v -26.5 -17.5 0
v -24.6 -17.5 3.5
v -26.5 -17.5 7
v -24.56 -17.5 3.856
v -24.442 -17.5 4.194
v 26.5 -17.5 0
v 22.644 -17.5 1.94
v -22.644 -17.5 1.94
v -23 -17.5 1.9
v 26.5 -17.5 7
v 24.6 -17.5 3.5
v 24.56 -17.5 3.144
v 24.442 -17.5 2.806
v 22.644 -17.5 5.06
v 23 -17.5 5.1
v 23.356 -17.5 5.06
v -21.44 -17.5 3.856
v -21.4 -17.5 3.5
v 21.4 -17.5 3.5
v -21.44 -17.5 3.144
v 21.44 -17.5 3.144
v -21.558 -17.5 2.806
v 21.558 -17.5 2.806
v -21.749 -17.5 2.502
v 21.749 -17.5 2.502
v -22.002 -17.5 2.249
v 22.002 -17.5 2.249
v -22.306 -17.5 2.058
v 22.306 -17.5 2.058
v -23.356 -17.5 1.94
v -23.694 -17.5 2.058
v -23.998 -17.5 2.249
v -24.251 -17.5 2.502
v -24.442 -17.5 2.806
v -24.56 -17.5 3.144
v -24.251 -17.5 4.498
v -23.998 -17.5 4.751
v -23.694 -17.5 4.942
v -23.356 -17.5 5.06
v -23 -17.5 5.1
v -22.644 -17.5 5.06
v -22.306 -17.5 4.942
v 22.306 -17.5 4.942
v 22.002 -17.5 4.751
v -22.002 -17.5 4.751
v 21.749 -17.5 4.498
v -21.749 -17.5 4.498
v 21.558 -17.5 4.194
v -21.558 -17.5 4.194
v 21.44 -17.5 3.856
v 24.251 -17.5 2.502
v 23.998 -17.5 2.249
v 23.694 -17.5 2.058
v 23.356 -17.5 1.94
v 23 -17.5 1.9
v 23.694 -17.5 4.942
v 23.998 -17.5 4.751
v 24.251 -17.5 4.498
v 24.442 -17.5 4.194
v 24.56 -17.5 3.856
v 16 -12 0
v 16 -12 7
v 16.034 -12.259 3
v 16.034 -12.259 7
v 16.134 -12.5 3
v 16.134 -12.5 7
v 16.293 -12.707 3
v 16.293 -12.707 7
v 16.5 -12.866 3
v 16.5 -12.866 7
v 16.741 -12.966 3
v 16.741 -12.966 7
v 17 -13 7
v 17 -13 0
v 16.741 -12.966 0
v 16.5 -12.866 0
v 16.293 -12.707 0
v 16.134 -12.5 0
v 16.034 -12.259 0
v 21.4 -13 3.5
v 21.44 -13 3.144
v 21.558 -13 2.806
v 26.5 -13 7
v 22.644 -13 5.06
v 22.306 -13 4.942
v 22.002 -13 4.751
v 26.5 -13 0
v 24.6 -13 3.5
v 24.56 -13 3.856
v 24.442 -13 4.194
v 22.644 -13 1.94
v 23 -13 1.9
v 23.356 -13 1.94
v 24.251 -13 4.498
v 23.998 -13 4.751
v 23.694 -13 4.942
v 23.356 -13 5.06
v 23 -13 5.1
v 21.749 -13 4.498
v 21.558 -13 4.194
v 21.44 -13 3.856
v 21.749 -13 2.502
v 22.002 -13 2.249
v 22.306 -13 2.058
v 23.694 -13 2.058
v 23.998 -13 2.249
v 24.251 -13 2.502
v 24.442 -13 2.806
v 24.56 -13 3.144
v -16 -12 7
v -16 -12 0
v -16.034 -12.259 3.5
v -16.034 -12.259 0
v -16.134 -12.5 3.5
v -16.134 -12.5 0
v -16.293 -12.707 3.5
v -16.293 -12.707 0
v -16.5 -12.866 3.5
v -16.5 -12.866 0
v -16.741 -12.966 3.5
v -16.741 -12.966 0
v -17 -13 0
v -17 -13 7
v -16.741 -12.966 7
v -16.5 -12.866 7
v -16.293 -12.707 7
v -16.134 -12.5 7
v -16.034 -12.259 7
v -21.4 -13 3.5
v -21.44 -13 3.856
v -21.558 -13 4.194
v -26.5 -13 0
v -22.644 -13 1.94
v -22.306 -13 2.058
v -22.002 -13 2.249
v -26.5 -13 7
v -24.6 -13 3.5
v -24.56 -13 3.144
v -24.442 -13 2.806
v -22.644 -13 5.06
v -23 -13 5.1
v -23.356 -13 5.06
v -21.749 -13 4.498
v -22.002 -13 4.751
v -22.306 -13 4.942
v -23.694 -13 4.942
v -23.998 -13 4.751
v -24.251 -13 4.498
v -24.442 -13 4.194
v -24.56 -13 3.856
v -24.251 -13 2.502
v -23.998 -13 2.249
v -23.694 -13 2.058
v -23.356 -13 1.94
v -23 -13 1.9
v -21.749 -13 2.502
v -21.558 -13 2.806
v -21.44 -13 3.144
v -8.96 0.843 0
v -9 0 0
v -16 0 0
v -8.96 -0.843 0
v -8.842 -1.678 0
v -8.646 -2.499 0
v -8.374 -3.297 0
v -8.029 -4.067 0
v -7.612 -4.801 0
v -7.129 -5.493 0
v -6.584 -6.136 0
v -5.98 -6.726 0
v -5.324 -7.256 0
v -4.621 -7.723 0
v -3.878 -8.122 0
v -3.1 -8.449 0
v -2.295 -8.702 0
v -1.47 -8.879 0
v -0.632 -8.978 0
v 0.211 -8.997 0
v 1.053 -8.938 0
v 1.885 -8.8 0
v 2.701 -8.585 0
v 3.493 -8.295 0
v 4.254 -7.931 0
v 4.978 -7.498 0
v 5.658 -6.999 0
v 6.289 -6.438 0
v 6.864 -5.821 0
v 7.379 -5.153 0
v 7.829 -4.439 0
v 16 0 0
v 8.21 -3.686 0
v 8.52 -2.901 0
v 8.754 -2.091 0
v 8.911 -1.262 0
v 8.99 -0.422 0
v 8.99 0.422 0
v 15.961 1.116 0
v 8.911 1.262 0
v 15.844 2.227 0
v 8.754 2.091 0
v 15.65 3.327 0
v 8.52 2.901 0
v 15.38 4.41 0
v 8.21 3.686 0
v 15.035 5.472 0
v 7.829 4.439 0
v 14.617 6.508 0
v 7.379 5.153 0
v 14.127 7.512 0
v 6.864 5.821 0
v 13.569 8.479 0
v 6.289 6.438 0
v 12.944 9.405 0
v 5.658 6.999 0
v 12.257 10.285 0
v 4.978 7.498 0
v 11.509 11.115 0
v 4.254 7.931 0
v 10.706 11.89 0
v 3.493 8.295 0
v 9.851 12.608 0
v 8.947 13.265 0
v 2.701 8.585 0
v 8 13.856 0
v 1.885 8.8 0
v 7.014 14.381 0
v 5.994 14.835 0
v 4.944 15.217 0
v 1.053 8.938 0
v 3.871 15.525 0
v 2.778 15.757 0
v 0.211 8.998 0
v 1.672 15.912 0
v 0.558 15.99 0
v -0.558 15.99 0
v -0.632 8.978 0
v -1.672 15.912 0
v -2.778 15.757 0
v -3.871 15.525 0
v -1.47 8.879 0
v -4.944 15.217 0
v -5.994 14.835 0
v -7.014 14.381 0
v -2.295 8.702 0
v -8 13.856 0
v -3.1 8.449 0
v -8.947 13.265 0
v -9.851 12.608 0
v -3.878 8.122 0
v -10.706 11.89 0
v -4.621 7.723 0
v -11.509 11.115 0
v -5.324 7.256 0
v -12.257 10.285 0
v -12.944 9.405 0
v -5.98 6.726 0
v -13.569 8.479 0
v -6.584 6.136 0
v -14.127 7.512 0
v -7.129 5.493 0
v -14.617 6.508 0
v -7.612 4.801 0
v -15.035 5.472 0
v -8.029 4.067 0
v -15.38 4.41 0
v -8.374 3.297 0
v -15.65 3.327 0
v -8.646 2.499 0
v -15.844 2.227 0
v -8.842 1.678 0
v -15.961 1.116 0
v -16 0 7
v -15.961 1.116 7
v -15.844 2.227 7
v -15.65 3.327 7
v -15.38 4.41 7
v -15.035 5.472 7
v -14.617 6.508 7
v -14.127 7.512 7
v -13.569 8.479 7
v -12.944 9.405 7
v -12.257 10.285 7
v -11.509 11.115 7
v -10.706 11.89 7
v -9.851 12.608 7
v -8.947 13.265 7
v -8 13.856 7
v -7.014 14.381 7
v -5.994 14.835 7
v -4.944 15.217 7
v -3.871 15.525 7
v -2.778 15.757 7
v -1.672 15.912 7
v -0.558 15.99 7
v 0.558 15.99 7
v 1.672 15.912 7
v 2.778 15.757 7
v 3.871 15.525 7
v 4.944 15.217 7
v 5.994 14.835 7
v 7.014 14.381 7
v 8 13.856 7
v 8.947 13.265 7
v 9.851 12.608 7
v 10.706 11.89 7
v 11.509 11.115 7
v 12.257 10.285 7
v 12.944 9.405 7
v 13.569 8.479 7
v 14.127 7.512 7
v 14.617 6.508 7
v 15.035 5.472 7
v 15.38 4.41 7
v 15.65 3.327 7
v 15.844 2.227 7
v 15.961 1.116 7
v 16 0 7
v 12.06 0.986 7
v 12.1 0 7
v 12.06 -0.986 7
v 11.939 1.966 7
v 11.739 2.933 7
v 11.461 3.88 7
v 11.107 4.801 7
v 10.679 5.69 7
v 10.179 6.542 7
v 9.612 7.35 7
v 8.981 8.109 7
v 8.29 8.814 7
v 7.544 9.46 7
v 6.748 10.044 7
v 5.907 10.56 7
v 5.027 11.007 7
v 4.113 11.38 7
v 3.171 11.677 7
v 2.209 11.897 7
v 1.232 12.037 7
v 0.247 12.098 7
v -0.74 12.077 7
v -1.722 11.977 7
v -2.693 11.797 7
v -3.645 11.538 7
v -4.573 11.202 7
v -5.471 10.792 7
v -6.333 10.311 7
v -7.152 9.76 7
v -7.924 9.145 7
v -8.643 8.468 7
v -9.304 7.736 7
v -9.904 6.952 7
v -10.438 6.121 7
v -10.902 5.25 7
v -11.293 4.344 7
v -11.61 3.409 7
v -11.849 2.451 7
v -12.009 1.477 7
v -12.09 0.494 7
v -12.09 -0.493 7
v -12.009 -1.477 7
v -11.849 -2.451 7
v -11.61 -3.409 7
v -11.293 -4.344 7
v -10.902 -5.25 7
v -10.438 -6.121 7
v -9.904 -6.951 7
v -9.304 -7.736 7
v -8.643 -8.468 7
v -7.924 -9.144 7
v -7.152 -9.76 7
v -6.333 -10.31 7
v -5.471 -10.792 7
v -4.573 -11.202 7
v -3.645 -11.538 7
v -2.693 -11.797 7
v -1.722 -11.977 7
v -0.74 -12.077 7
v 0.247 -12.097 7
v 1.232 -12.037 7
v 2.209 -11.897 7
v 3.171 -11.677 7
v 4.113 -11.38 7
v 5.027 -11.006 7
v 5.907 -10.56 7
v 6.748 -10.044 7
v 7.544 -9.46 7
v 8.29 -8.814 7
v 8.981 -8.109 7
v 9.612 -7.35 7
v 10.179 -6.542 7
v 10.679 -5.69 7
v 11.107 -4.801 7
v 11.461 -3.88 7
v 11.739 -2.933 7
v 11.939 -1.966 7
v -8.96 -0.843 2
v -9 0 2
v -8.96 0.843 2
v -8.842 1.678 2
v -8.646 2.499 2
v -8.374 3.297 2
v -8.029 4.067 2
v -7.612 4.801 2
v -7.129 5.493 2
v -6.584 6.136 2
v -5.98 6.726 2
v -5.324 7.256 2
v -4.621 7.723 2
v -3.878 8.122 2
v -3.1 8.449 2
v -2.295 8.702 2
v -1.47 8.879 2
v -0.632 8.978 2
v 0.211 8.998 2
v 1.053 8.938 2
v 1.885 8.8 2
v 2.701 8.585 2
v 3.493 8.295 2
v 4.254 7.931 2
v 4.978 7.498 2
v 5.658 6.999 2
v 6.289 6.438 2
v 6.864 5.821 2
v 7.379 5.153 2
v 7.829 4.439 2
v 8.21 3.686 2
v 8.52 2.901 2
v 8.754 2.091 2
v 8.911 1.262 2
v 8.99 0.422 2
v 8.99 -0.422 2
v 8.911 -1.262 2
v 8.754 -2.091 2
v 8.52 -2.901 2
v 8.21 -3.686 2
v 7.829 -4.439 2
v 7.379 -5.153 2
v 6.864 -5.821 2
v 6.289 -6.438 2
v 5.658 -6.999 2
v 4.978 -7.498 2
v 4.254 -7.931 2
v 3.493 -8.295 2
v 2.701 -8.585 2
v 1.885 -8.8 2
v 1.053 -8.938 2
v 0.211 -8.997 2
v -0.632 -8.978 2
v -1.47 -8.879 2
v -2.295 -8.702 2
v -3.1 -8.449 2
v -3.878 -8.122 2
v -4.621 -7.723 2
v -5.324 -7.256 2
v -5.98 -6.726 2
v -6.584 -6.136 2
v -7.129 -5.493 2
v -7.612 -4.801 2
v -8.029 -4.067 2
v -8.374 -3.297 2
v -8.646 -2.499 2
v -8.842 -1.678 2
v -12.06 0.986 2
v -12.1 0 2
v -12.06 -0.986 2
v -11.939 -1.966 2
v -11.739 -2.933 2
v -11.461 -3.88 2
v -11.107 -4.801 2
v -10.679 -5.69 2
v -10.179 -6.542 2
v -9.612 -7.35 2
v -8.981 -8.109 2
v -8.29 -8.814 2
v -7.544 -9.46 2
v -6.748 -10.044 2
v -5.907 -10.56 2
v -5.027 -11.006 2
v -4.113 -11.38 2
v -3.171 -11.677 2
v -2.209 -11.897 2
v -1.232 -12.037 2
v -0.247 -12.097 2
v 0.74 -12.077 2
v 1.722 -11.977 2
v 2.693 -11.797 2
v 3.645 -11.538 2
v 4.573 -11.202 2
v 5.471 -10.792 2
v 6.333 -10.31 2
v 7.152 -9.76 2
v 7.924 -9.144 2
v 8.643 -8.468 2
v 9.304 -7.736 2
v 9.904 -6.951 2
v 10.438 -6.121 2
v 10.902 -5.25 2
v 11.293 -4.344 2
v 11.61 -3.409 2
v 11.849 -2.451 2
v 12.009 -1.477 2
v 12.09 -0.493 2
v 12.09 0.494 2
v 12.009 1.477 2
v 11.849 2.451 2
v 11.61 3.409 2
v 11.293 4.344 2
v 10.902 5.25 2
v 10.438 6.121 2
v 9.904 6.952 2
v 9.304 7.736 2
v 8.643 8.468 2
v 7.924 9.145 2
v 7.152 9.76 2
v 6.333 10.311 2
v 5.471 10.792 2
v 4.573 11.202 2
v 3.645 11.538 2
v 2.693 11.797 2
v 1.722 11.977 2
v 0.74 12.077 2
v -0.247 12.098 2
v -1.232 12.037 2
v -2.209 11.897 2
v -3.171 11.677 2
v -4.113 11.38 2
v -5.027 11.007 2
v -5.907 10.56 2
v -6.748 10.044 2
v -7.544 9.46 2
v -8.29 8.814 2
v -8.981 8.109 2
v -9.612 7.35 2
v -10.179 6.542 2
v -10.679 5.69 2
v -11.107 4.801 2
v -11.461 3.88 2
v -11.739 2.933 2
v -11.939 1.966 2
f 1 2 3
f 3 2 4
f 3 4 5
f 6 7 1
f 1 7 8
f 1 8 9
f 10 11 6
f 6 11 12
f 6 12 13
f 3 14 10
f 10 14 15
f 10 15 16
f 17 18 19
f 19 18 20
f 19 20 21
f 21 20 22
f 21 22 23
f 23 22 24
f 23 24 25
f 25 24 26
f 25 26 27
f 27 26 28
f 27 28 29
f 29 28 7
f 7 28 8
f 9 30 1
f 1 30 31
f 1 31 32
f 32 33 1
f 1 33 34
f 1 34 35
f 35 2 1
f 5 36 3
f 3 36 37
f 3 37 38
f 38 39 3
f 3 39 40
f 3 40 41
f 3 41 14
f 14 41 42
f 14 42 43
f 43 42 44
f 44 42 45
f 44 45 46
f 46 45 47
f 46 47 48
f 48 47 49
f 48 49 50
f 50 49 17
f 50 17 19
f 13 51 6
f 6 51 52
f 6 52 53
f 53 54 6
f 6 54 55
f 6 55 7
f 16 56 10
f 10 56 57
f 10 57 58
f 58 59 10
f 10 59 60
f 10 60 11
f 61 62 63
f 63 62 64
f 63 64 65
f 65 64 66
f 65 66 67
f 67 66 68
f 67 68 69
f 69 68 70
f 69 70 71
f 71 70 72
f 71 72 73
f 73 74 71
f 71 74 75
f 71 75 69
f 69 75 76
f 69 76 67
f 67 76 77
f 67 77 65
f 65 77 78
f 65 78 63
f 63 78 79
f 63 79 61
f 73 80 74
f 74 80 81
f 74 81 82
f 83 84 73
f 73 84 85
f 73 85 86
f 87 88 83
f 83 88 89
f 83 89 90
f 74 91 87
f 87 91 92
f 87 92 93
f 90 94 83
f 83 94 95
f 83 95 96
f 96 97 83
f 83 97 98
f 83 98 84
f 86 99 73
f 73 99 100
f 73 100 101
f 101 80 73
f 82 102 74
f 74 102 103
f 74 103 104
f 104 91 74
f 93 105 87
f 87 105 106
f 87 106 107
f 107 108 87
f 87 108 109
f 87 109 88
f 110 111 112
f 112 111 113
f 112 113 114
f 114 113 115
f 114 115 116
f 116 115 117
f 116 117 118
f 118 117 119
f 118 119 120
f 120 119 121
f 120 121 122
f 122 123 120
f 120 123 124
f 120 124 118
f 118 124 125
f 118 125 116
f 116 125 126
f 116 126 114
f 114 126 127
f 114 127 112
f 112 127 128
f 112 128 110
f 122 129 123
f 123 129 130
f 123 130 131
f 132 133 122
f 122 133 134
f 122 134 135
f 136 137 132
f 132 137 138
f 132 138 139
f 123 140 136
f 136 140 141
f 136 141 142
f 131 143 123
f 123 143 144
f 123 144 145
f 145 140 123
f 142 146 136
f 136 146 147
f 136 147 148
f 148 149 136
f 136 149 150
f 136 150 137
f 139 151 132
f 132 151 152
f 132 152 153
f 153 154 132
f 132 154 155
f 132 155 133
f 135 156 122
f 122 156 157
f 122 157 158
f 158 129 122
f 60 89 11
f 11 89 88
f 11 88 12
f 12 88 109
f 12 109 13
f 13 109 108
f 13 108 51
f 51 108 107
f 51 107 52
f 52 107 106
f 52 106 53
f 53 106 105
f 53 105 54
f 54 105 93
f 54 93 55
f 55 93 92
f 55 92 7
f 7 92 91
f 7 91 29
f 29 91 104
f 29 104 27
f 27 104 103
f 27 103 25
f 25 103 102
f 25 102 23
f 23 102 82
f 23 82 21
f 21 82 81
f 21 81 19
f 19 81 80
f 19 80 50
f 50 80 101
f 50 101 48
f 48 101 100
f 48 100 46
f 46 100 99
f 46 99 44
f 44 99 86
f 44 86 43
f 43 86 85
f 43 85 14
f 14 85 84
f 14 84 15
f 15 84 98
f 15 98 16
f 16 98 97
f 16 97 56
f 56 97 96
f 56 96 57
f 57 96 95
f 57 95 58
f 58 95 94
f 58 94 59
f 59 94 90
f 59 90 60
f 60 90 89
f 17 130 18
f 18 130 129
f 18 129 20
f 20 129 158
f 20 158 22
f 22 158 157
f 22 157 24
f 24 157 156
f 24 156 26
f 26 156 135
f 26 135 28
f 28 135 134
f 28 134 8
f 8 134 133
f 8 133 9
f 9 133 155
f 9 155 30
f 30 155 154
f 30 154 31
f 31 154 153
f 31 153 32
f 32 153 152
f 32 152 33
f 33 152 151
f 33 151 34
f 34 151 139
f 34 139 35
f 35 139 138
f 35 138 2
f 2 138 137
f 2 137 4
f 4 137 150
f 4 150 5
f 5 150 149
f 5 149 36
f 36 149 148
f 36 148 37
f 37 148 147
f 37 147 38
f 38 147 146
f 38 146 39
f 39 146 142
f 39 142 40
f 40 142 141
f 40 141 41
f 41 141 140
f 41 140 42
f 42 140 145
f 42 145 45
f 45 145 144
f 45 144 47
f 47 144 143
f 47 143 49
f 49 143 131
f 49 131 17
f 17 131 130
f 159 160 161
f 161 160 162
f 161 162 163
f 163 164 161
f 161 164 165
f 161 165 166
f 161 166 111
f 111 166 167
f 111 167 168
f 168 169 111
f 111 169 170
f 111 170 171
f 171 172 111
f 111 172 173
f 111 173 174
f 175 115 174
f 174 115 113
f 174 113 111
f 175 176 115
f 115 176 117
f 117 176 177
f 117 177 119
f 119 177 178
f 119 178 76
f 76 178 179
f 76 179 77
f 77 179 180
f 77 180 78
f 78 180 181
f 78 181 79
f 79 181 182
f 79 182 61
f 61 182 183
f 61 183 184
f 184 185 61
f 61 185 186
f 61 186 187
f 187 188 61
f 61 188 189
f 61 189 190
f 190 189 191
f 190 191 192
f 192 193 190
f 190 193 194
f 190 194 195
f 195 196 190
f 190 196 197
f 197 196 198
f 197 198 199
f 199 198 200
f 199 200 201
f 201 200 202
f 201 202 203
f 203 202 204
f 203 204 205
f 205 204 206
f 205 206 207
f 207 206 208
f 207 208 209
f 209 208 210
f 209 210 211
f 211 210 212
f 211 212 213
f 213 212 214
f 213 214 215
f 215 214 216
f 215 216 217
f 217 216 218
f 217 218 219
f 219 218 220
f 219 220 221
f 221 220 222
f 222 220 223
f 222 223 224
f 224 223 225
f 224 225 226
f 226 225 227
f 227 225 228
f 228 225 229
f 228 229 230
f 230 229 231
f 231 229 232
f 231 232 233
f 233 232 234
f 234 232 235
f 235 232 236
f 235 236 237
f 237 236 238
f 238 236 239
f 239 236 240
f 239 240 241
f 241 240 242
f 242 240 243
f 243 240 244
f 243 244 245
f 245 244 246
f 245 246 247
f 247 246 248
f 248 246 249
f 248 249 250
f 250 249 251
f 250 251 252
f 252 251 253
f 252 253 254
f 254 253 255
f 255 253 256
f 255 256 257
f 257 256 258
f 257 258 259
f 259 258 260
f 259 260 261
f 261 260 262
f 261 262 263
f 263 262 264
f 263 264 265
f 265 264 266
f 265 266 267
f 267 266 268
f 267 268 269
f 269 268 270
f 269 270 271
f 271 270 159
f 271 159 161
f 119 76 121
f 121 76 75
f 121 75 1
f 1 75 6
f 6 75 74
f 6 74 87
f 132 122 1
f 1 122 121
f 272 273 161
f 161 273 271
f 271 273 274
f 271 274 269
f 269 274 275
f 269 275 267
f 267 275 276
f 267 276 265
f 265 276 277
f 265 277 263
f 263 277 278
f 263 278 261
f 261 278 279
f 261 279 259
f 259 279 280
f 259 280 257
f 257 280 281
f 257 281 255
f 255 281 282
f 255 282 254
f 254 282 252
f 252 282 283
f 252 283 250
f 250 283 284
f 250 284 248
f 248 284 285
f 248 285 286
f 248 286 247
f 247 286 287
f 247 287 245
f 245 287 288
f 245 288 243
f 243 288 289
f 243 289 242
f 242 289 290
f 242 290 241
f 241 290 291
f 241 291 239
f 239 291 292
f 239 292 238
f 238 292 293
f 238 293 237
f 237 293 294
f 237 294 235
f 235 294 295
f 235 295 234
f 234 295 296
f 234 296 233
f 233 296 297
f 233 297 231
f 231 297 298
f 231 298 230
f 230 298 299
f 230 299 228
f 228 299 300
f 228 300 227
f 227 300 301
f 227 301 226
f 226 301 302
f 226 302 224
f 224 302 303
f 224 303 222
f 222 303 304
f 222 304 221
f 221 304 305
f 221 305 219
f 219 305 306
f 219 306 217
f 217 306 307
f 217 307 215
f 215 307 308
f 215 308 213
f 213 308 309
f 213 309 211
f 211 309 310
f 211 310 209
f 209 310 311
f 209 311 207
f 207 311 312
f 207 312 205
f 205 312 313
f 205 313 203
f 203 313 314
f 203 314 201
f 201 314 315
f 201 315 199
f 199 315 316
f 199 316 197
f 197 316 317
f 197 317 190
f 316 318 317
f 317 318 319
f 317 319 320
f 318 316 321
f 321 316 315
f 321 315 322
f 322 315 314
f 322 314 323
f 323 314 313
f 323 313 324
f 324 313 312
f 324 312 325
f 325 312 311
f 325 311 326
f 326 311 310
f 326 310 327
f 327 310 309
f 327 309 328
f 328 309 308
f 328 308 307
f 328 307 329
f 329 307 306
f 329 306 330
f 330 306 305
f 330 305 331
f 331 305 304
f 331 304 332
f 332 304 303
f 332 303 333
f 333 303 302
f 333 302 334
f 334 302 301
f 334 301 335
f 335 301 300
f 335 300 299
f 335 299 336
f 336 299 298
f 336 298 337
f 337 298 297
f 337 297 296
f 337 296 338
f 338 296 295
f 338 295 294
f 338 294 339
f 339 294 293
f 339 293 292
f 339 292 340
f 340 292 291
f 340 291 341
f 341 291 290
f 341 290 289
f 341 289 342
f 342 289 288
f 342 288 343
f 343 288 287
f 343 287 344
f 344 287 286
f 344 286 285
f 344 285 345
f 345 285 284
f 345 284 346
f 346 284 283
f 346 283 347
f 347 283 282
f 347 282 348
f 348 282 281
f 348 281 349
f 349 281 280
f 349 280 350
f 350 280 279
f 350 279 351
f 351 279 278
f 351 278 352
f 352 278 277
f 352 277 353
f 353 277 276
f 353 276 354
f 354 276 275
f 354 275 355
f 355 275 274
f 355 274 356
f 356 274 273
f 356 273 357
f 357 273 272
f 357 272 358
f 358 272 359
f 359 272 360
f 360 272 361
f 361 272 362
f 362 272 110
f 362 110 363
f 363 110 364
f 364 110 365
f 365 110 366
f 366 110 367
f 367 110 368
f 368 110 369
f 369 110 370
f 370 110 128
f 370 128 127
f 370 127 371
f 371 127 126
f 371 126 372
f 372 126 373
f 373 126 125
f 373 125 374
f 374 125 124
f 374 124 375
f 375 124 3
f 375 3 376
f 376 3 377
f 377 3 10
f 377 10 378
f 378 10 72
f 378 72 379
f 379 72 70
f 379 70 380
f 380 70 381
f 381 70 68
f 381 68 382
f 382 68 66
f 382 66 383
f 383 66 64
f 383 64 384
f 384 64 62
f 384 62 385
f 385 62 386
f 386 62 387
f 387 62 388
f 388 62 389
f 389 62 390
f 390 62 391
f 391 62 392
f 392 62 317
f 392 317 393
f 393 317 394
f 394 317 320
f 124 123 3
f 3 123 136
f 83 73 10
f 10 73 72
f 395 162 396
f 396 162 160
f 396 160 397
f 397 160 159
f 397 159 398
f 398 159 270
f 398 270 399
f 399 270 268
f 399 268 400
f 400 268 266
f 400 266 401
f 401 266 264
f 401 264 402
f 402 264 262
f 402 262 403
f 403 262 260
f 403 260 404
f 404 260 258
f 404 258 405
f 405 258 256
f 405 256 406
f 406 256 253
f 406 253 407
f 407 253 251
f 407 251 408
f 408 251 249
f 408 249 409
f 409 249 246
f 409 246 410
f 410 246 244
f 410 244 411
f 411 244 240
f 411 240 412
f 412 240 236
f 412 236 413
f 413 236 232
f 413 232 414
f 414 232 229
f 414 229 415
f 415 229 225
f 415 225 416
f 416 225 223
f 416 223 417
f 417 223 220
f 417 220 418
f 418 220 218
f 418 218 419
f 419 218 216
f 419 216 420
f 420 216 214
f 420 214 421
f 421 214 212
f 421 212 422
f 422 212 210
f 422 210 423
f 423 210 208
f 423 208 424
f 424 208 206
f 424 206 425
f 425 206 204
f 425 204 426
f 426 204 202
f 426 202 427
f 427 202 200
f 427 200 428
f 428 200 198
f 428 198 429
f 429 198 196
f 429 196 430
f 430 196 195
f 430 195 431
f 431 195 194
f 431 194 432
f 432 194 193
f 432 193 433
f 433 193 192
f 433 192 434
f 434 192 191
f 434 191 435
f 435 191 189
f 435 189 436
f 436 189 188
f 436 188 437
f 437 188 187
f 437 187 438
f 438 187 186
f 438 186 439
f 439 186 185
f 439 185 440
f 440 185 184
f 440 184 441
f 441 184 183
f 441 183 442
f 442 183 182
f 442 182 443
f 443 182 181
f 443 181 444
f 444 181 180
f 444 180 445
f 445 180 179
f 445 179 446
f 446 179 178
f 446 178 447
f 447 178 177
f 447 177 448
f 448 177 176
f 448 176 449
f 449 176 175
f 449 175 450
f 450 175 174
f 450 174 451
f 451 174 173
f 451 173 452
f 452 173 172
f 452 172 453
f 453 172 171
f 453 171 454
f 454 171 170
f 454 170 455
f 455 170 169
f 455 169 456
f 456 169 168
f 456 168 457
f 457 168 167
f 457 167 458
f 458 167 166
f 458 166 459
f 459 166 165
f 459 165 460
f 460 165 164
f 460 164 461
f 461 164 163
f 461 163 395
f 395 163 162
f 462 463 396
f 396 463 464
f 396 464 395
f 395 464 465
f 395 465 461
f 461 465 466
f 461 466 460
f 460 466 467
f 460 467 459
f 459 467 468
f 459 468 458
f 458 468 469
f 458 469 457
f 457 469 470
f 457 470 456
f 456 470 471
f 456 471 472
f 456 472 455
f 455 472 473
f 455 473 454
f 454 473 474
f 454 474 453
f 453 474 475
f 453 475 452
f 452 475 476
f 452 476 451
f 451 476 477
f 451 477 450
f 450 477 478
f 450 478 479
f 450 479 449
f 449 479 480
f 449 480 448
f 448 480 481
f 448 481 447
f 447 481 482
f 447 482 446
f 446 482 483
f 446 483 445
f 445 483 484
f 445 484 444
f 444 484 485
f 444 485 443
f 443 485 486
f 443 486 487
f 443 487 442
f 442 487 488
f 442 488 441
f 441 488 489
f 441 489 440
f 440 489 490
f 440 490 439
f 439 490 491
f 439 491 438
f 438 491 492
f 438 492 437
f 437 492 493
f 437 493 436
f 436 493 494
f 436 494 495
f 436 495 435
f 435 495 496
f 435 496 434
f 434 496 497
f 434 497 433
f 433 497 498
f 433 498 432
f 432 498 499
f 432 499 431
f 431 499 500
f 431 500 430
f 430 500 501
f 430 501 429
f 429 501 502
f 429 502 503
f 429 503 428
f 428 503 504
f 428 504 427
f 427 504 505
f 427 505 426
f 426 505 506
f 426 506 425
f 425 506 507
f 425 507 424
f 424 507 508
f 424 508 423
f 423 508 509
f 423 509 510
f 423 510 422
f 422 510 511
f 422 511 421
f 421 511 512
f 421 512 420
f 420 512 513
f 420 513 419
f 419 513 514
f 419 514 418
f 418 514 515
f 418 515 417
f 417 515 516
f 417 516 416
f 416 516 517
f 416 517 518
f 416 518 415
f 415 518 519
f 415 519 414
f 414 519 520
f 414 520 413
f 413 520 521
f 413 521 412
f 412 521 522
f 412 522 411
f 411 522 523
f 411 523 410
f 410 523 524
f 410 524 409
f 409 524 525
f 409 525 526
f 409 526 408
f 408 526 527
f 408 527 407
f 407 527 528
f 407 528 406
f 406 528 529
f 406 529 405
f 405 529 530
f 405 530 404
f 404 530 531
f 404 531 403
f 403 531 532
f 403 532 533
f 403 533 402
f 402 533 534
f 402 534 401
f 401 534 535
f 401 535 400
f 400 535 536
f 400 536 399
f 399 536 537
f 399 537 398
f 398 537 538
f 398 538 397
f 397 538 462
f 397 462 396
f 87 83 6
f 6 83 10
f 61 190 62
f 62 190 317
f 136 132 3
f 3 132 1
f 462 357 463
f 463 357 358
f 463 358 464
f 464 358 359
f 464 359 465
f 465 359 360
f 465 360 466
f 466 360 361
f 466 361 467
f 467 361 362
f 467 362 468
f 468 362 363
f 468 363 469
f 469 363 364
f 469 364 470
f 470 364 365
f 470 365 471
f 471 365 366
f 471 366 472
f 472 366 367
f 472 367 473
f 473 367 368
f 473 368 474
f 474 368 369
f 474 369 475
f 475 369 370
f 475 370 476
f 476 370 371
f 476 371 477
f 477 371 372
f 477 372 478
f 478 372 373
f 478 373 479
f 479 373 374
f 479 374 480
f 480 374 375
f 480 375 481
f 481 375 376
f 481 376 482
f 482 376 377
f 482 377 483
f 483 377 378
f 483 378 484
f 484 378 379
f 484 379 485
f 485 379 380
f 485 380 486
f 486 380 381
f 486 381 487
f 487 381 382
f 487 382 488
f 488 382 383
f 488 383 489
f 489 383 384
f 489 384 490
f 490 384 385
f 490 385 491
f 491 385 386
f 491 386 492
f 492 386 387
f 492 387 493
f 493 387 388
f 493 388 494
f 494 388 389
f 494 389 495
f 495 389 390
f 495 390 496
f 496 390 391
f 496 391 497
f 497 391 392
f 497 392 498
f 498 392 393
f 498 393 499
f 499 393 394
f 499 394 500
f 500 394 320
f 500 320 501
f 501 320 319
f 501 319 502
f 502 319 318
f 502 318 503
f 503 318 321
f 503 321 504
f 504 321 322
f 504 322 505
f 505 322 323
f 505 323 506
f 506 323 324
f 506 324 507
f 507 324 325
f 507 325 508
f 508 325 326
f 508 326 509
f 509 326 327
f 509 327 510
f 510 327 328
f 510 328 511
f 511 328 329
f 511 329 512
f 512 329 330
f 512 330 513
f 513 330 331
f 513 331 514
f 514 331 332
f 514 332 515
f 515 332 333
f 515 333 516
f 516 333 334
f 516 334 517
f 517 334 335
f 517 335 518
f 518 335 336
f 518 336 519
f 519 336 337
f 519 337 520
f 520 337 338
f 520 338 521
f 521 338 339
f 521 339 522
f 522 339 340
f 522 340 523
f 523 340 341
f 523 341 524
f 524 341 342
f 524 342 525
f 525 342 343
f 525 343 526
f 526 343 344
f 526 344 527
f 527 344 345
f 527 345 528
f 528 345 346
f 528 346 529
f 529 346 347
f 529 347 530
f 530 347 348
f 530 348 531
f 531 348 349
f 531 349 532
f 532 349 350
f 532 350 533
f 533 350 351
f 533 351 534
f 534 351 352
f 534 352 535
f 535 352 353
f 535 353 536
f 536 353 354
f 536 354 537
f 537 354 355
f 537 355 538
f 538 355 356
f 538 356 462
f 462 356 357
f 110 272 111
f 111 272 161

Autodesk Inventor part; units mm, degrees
ref_plane "YZ Plane" through (0, 0, 0) normal (1, 0, 0) x (0, 1, 0)
ref_plane "XZ Plane" through (0, 0, 0) normal (0, 1, 0) x (-1, 0, 0)
ref_plane "XY Plane" through (0, 0, 0) normal (0, 0, 1) x (1, 0, 0)
sketch "Skizze1" plane through (0, 0, 0) normal (0, 0, 1) x (1, 0, 0)
  line L0 (0, 22.4) -> (0, -22.4) projected
  line L1 (-22.4, 0) -> (22.4, 0) projected
  line L2 (-16, 16) -> (16, 16)
  line L3 (16, 16) -> (16, -16)
  line L4 (16, -16) -> (-16, -16)
  line L5 (-16, -16) -> (-16, 16)
  circle A0 centre (0, 0) radius 12.1
  dimension "d0" = 32
  dimension "d1" = 32
  dimension "d2" = 24.2
extrude "Extrusion1" add sketch "Skizze1" along normal blind 7 contours L2 L3 L1 A0 L0 | L0 A0 L1 L5 L2 | L1 L3 L4 L0 A0 | A0 L0 L4 L5 L1
sketch "Skizze2" plane through (16, -16, 0) normal (1, 0, 0) x (0, 0, -1)
  line L0 (-7, 32) -> (-7, 0) projected
  line L1 (0, 32) -> (0, 0) projected
  line L2 (-7, 0) -> (0, 0)
  line L3 (0, 0) -> (0, 3)
  line L4 (0, 3) -> (-7, 3)
  line L5 (-7, 3) -> (-7, 0)
  point P0 (0, 16)
  point P1 (-7, 3)
  dimension "d5" = 3
sketch "Skizze3" plane through (-16, -16, 0) normal (-1, 0, 0) x (0, 0, 1)
  line L0 (7, 32) -> (7, 0) projected
  line L1 (0, 32) -> (0, 0) projected
  line L2 (7, 0) -> (0, 0)
  line L3 (0, 0) -> (0, 3)
  line L4 (0, 3) -> (7, 3)
  line L5 (7, 3) -> (7, 0)
  point P0 (0, 16)
  point P1 (7, 3)
  dimension "d6" = 3
extrude "Extrusion2" add sketch "Skizze3" along normal blind 10.5
extrude "Extrusion3" add sketch "Skizze2" along normal blind 10.5
sketch "Skizze4" plane through (0, 0, 0) normal (0, 0, -1) x (-1, 0, 0)
  circle A0 centre (0, 0) radius 12.1
  circle A1 centre (0, 0) radius 12.1 projected
  circle A2 centre (0, 0) radius 9
  dimension "d11" = 24.2
  dimension "d12" = 18
extrude "Extrusion4" add sketch "Skizze4" against normal blind 2
fillet "Rundung1" radius 16 2 edges at (16, 16, 3.5) (-16, 16, 3.5)
sketch "Skizze5" plane through (16, -13, 7) normal (0, 1, 0) x (1, 0, 0)
  circle A0 centre (-39, 3.5) radius 1.6
  line L0 (-32, 7) -> (-42.5, 7) projected
  line L1 (-42.5, 0) -> (-42.5, 7) projected
  circle A1 centre (7, 3.5) radius 1.6
  line L2 (0, 7) -> (10.5, 7) projected
  line L3 (10.5, 7) -> (10.5, 0) projected
  point P0 (-16, 7)
  dimension "d16" = 3.2
  dimension "d17" = 3.5
  dimension "d18" = 3.5
  dimension "d19" = 3.2
  dimension "d20" = 3.5
  dimension "d21" = 3.5
extrude "Extrusion5" cut sketch "Skizze5" against normal up to surface (3 mm away)
fillet "Rundung2" radius 1 2 edges at (-16, -13, 3.5) (16, -13, 3.5)
sketch "Skizze6" plane through (-26.5, -16, 0) normal (0, -1, 0) x (1, 0, 0)
  line L0 (0, 0) -> (0, 7) projected
  line L1 (53, 7) -> (53, 0) projected
  line L2 (0, 7) -> (53, 7)
  line L3 (53, 7) -> (53, 0)
  line L4 (53, 0) -> (0, 0)
  line L5 (0, 0) -> (0, 7)
  circle A0 centre (3.5, 3.5) radius 1.6 projected
  circle A1 centre (3.5, 3.5) radius 1.6
  circle A2 centre (49.5, 3.5) radius 1.6 projected
  circle A3 centre (49.5, 3.5) radius 1.6
  point P0 (26.5, 0)
  dimension "d25" = 3.2
  dimension "d26" = 3.2
extrude "Extrusion6" add sketch "Skizze6" along normal blind 1.5
properties part number "_3D-Druck"
